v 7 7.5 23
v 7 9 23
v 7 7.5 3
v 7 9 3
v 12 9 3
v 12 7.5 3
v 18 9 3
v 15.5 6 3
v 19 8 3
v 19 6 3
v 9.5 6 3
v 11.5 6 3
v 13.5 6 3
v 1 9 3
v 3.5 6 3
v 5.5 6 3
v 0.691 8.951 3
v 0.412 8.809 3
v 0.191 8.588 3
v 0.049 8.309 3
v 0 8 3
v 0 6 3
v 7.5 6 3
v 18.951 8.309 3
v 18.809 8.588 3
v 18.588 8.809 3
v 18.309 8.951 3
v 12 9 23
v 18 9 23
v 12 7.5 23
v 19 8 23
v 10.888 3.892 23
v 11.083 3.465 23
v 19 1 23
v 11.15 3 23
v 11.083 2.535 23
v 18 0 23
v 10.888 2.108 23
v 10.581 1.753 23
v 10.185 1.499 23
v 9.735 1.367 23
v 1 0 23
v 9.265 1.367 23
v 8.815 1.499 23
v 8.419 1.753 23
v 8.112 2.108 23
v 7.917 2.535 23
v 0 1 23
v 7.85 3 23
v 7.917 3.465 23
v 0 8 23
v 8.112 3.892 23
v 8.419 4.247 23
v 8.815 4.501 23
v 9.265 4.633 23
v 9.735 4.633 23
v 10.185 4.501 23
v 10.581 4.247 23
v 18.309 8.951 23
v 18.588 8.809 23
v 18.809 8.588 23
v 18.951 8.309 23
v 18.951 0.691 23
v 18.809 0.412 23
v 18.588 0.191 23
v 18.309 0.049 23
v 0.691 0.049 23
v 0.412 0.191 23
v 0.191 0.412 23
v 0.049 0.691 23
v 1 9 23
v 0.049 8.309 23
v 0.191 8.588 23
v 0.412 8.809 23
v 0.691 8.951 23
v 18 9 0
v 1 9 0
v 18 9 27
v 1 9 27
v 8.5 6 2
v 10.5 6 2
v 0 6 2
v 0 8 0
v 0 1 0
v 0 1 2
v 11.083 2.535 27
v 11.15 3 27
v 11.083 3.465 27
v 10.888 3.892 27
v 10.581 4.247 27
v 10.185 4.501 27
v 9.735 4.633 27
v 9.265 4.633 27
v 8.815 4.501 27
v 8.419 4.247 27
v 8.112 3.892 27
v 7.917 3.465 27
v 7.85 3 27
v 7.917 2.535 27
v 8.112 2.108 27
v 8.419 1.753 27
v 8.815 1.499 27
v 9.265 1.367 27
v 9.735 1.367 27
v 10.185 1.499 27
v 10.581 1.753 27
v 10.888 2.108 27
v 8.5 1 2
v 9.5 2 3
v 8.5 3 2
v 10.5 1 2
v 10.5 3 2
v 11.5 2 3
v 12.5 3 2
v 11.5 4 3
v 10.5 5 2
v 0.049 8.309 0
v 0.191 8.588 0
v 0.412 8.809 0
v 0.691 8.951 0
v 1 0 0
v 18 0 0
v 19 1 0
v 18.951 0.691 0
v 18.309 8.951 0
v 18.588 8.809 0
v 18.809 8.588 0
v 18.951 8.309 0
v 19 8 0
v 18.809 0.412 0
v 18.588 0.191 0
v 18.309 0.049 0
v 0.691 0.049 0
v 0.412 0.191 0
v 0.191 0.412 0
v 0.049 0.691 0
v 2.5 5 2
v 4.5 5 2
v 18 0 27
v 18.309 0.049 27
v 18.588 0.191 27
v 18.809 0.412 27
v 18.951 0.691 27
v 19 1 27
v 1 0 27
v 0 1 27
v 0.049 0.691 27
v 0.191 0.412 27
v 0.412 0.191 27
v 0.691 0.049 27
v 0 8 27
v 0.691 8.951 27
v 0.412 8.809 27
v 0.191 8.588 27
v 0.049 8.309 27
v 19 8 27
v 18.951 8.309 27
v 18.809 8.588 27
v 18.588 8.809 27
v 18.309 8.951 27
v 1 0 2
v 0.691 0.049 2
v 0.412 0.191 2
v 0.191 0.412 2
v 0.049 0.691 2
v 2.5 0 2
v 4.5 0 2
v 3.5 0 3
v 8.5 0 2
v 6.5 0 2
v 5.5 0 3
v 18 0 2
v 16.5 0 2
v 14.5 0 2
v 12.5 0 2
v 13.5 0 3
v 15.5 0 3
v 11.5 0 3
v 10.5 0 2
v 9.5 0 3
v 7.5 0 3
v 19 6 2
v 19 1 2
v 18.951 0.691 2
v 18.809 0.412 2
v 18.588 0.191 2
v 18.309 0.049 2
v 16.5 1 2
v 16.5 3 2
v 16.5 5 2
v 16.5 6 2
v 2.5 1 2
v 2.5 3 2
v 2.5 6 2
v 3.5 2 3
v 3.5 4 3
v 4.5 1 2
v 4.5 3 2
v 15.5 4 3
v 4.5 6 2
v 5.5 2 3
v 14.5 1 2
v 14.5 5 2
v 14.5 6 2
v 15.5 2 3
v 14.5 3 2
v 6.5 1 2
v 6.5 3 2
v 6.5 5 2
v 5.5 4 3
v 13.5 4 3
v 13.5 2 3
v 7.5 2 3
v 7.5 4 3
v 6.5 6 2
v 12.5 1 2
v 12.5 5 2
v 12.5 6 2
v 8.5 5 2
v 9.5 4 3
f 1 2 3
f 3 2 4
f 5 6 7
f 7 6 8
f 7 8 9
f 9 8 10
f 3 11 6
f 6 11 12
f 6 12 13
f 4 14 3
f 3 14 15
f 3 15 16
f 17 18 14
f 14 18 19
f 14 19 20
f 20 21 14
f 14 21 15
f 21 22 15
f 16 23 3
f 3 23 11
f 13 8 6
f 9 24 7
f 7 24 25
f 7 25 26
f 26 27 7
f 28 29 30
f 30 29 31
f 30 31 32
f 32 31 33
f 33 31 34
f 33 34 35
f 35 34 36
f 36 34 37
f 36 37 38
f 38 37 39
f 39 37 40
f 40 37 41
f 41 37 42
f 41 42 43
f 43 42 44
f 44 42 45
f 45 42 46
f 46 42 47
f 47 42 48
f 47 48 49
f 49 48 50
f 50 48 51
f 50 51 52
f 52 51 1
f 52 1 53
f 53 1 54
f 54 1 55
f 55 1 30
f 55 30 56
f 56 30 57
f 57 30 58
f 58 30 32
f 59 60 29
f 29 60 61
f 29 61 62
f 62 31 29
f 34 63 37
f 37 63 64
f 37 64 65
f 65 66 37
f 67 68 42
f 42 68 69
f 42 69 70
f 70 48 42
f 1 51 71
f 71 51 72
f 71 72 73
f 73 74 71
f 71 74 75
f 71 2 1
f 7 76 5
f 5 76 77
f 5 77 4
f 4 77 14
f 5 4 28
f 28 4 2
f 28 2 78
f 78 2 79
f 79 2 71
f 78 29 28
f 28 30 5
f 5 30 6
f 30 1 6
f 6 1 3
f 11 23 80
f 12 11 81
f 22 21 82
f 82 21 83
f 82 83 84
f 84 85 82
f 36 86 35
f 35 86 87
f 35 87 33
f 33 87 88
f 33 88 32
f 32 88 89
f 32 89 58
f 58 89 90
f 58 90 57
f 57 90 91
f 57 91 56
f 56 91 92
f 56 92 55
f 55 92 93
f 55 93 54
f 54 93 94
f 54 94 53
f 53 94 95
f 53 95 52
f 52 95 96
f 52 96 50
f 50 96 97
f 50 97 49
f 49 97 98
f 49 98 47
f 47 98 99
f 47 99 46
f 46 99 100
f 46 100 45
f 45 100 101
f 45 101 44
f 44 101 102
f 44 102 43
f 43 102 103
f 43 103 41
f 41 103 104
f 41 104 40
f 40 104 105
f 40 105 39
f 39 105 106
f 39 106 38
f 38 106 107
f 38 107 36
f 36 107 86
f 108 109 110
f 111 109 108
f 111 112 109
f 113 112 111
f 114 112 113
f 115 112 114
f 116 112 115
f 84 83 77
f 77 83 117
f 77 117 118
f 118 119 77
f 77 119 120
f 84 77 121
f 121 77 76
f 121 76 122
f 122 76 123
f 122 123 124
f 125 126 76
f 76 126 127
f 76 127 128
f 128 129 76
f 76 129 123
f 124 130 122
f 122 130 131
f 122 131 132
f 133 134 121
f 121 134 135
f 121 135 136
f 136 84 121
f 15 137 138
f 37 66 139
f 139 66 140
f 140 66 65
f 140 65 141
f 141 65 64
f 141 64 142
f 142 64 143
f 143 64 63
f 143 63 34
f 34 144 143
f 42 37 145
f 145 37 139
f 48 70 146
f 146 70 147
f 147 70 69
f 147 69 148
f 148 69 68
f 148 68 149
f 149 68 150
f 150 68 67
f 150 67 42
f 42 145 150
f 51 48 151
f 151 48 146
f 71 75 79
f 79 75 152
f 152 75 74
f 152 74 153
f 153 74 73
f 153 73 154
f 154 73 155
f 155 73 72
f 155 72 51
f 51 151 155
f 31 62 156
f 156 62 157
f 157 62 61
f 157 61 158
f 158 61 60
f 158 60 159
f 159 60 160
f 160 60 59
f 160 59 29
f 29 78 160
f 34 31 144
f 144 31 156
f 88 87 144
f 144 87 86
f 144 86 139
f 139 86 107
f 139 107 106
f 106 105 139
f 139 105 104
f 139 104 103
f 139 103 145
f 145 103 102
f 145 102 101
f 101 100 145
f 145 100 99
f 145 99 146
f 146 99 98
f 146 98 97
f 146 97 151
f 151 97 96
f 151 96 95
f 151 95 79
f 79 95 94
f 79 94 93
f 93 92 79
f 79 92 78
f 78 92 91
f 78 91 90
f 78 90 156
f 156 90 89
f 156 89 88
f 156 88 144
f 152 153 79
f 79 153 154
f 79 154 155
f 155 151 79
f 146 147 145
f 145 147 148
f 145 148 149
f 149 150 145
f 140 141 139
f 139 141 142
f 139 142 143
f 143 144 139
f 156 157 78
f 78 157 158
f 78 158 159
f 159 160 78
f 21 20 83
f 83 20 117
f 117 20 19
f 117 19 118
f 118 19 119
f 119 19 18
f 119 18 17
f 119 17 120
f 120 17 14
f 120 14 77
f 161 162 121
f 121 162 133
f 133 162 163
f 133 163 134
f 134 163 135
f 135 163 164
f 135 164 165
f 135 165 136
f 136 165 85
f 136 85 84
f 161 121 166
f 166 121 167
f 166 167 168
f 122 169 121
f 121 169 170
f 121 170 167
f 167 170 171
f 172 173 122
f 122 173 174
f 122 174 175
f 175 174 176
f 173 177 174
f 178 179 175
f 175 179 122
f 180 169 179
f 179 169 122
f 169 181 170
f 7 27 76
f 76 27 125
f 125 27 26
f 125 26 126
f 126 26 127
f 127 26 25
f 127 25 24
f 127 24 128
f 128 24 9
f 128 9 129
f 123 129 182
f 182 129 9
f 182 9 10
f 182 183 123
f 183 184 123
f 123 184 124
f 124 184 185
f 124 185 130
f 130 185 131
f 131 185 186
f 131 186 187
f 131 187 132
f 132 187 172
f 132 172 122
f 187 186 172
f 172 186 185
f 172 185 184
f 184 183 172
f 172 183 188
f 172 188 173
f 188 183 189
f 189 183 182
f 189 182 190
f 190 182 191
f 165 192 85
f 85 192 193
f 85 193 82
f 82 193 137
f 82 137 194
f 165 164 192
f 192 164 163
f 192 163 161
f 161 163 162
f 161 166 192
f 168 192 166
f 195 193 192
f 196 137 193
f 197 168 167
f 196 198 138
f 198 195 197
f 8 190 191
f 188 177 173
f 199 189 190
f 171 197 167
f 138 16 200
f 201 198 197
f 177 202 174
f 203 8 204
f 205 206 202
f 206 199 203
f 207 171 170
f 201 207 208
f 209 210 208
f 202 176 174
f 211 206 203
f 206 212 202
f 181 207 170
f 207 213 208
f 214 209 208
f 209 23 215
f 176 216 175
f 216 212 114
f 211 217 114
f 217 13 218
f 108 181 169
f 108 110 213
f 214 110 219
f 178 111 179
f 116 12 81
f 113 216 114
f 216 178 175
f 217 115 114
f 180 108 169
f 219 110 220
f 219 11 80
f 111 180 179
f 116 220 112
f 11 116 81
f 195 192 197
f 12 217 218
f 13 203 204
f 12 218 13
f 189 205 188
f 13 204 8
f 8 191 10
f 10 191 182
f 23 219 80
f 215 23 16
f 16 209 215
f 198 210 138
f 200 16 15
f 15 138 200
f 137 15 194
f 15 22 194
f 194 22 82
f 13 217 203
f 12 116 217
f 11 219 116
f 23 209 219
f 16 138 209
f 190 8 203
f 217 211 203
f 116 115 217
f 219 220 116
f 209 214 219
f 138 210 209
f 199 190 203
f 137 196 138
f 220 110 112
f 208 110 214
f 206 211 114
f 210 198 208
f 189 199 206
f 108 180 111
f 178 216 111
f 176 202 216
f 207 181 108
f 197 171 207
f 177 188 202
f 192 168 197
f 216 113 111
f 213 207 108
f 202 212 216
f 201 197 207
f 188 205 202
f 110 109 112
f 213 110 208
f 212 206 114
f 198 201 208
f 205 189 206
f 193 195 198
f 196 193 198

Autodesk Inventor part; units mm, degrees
ref_plane "YZ Plane" through (0, 0, 0) normal (1, 0, 0) x (0, 1, 0)
ref_plane "XZ Plane" through (0, 0, 0) normal (0, 1, 0) x (-1, 0, 0)
ref_plane "XY Plane" through (0, 0, 0) normal (0, 0, 1) x (1, 0, 0)
sketch "Sketch1" plane through (0, 0, 0) normal (0, 0, 1) x (1, 0, 0)
  line L0 (0, 0) -> (19, 0)
  line L1 (19, 0) -> (19, 9)
  line L2 (19, 9) -> (0, 9)
  line L3 (0, 9) -> (0, 0)
  point P0 (9.5, 9)
  dimension "d0" = 19
  dimension "d1" = 9
extrude "Extrusion1" add sketch "Sketch1" along normal blind 3
sketch "Sketch2" plane through (0, 0, 3) normal (0, 0, 1) x (1, 0, 0)
  line L0 (19, 9) -> (0, 9) projected
  circle A0 centre (9.5, 7.5) radius 1.5
  line L1 (11, 6) -> (8, 6)
  line L2 (8, 6) -> (8, 9)
  line L3 (8, 9) -> (11, 9)
  line L4 (11, 9) -> (11, 6)
  line L5 (11, 6) -> (8, 9) construction
  line L6 (8, 6) -> (11, 9) construction
  line L7 (12, 7.5) -> (7, 7.5)
  line L8 (7, 7.5) -> (7, 9)
  line L9 (7, 9) -> (12, 9)
  line L10 (12, 9) -> (12, 7.5)
  line L11 (12, 7.5) -> (7, 9) construction
  line L12 (7, 7.5) -> (12, 9) construction
  line L13 (8, 7.5) -> (11, 7.5)
  line L14 (11, 7.5) -> (11, 6)
  line L15 (11, 6) -> (8, 6)
  line L16 (8, 6) -> (8, 7.5)
  point P0 (0, 0)
  point P1 (9.5, 8.25)
  dimension "d4" = 3
  dimension "d5" = 1.5
  dimension "d73" = 0.75
  dimension "d74" = 5
extrude "Extrusion2" add sketch "Sketch2" along normal blind 20 contours A0 L7 | A0 L7
sketch "Sketch10" plane through (0, 0, 0) normal (-1, 0, 0) x (0, 0, 1)
  line L0 (0, 0) -> (3, 0) projected
  line L1 (3, 9) -> (3, 0) projected
  line L2 (3, 0) -> (2, 0)
  line L3 (2, 0) -> (2, 6)
  line L4 (2, 6) -> (3, 6)
  line L5 (3, 6) -> (3, 0)
  line L6 (3, 0) -> (2, 1)
  line L7 (3, 0) -> (4.4142, 0) construction
  line L8 (2, 1) -> (3, 2)
  line L9 (3, 0) -> (3, 9) projected
  line L10 (3, 2) -> (2, 3)
  line L11 (2, 3) -> (3, 4)
  line L12 (2, 5) -> (3, 4)
  line L13 (2, 5) -> (3, 6)
  dimension "d23" = 1
  dimension "d24" = 6
  dimension "d25" = 135
  dimension "d26" = 90
extrude "Extrusion8" cut sketch "Sketch10" against normal up to next contours L6 L8 L1 | L10 L11 L1 | L12 L13 L1
sketch "Sketch11" plane through (0, 0, 0) normal (0, -1, 0) x (1, 0, 0)
  line L0 (0, 3) -> (9.5, 3) projected
  line L1 (0, 3) -> (19, 3)
  line L2 (19, 3) -> (19, 2)
  line L3 (19, 2) -> (8.5, 2)
  line L4 (0, 2) -> (0, 3)
  line L5 (0, 3) -> (0, 2) projected
  line L6 (0, 3) -> (1.4142, 3) construction
  line L7 (19, 3) -> (0, 3) projected
  line L8 (9.5, 3) -> (8.5, 2)
  line L9 (9.5, 3) -> (10.9142, 3) construction
  line L10 (10.5, 2) -> (8.5, 2)
  line L11 (9.5, 3) -> (10.5, 2)
  line L12 (10.5, 2) -> (8.5, 2)
  line L13 (8.5, 2) -> (0, 2)
  line L14 (7.5, 3) -> (8.5, 2)
  line L15 (8.5, 2) -> (6.5, 2)
  line L16 (7.5, 3) -> (6.5, 2)
  line L17 (5.5, 3) -> (6.5, 2)
  line L18 (6.5, 2) -> (4.5, 2)
  line L19 (5.5, 3) -> (4.5, 2)
  line L20 (3.5, 3) -> (4.5, 2)
  line L21 (4.5, 2) -> (2.5, 2)
  line L22 (3.5, 3) -> (2.5, 2)
  line L23 (12.5, 2) -> (10.5, 2)
  line L24 (11.5, 3) -> (12.5, 2)
  line L25 (11.5, 3) -> (10.5, 2)
  line L26 (14.5, 2) -> (12.5, 2)
  line L27 (13.5, 3) -> (14.5, 2)
  line L28 (13.5, 3) -> (12.5, 2)
  line L29 (16.5, 2) -> (14.5, 2)
  line L30 (15.5, 3) -> (16.5, 2)
  line L31 (15.5, 3) -> (14.5, 2)
  point P0 (0, 0)
  dimension "d30" = 135
  dimension "d33" = 2
  dimension "d40" = 2
extrude "Extrusion9" cut sketch "Sketch11" against normal blind 6 contours L0 L22 L13 L4 | L0 L19 L20 | L0 L16 L17 | L0 L8 L14 | L1 L25 L11 | L1 L28 L24 | L1 L31 L27 | L1 L2 L3 L30
fillet "Fillet2" radius 1 4 edges at (19, 0, 1) (19, 9, 1.5) (0, 0, 1) (0, 9, 1.5)
sketch "Sketch13" plane through (9.5, 7.5, 23) normal (0, 0, 1) x (1, 0, 0)
  line L0 (9.5, -6.5) -> (9.5, 0.5) projected
  arc A0 (8.5, -7.5) -> (9.5, -6.5) centre (8.5, -6.5) ccw projected
  line L1 (-8.5, -7.5) -> (8.5, -7.5) projected
  arc A1 (-9.5, -6.5) -> (-8.5, -7.5) centre (-8.5, -6.5) ccw projected
  line L2 (-9.5, 0.5) -> (-9.5, -6.5) projected
  arc A2 (-8.5, 1.5) -> (-9.5, 0.5) centre (-8.5, 0.5) ccw projected
  line L3 (8.5, 1.5) -> (-8.5, 1.5) projected
  arc A3 (9.5, 0.5) -> (8.5, 1.5) centre (8.5, 0.5) ccw projected
  point P0 (-9.5, -7.5)
extrude "Extrusion12" add sketch "Sketch13" along normal blind 4
sketch "Sketch14" plane through (9.5, 7.5, 27) normal (0, 0, 1) x (1, 0, 0)
  line L0 (-8.5, -7.5) -> (8.5, -7.5) projected
  circle A0 centre (0, -4.5) radius 1.65
  point P0 (-9.5, -7.5)
  dimension "d67" = 3
  dimension "d68" = 3.3
extrude "Extrusion13" cut sketch "Sketch14" against normal up to next
extrude "Extrusion14" add sketch "Sketch2" along normal up to next contours L4 A0 L0 | A0 L2 L0 | L4 L1 A0 | A0 L1 L2
extrude "Extrusion15" add sketch "Sketch2" along normal up to next contours L10 L7 L4 L0 | L4 A0 L0 | A0 L2 L0 | A0 L7 | L2 L7 L8 L0 picked at (9.5, 8)
extrude "Extrusion16" cut sketch "Sketch2" along normal up to surface (20 mm away) contours L4 L1 A0 | A0 L7 | A0 L1 L2 picked at (9.1091, 7.1883)
properties part number "clamp-base9x19mm-SampleH20-screwM4(Miracca)"
